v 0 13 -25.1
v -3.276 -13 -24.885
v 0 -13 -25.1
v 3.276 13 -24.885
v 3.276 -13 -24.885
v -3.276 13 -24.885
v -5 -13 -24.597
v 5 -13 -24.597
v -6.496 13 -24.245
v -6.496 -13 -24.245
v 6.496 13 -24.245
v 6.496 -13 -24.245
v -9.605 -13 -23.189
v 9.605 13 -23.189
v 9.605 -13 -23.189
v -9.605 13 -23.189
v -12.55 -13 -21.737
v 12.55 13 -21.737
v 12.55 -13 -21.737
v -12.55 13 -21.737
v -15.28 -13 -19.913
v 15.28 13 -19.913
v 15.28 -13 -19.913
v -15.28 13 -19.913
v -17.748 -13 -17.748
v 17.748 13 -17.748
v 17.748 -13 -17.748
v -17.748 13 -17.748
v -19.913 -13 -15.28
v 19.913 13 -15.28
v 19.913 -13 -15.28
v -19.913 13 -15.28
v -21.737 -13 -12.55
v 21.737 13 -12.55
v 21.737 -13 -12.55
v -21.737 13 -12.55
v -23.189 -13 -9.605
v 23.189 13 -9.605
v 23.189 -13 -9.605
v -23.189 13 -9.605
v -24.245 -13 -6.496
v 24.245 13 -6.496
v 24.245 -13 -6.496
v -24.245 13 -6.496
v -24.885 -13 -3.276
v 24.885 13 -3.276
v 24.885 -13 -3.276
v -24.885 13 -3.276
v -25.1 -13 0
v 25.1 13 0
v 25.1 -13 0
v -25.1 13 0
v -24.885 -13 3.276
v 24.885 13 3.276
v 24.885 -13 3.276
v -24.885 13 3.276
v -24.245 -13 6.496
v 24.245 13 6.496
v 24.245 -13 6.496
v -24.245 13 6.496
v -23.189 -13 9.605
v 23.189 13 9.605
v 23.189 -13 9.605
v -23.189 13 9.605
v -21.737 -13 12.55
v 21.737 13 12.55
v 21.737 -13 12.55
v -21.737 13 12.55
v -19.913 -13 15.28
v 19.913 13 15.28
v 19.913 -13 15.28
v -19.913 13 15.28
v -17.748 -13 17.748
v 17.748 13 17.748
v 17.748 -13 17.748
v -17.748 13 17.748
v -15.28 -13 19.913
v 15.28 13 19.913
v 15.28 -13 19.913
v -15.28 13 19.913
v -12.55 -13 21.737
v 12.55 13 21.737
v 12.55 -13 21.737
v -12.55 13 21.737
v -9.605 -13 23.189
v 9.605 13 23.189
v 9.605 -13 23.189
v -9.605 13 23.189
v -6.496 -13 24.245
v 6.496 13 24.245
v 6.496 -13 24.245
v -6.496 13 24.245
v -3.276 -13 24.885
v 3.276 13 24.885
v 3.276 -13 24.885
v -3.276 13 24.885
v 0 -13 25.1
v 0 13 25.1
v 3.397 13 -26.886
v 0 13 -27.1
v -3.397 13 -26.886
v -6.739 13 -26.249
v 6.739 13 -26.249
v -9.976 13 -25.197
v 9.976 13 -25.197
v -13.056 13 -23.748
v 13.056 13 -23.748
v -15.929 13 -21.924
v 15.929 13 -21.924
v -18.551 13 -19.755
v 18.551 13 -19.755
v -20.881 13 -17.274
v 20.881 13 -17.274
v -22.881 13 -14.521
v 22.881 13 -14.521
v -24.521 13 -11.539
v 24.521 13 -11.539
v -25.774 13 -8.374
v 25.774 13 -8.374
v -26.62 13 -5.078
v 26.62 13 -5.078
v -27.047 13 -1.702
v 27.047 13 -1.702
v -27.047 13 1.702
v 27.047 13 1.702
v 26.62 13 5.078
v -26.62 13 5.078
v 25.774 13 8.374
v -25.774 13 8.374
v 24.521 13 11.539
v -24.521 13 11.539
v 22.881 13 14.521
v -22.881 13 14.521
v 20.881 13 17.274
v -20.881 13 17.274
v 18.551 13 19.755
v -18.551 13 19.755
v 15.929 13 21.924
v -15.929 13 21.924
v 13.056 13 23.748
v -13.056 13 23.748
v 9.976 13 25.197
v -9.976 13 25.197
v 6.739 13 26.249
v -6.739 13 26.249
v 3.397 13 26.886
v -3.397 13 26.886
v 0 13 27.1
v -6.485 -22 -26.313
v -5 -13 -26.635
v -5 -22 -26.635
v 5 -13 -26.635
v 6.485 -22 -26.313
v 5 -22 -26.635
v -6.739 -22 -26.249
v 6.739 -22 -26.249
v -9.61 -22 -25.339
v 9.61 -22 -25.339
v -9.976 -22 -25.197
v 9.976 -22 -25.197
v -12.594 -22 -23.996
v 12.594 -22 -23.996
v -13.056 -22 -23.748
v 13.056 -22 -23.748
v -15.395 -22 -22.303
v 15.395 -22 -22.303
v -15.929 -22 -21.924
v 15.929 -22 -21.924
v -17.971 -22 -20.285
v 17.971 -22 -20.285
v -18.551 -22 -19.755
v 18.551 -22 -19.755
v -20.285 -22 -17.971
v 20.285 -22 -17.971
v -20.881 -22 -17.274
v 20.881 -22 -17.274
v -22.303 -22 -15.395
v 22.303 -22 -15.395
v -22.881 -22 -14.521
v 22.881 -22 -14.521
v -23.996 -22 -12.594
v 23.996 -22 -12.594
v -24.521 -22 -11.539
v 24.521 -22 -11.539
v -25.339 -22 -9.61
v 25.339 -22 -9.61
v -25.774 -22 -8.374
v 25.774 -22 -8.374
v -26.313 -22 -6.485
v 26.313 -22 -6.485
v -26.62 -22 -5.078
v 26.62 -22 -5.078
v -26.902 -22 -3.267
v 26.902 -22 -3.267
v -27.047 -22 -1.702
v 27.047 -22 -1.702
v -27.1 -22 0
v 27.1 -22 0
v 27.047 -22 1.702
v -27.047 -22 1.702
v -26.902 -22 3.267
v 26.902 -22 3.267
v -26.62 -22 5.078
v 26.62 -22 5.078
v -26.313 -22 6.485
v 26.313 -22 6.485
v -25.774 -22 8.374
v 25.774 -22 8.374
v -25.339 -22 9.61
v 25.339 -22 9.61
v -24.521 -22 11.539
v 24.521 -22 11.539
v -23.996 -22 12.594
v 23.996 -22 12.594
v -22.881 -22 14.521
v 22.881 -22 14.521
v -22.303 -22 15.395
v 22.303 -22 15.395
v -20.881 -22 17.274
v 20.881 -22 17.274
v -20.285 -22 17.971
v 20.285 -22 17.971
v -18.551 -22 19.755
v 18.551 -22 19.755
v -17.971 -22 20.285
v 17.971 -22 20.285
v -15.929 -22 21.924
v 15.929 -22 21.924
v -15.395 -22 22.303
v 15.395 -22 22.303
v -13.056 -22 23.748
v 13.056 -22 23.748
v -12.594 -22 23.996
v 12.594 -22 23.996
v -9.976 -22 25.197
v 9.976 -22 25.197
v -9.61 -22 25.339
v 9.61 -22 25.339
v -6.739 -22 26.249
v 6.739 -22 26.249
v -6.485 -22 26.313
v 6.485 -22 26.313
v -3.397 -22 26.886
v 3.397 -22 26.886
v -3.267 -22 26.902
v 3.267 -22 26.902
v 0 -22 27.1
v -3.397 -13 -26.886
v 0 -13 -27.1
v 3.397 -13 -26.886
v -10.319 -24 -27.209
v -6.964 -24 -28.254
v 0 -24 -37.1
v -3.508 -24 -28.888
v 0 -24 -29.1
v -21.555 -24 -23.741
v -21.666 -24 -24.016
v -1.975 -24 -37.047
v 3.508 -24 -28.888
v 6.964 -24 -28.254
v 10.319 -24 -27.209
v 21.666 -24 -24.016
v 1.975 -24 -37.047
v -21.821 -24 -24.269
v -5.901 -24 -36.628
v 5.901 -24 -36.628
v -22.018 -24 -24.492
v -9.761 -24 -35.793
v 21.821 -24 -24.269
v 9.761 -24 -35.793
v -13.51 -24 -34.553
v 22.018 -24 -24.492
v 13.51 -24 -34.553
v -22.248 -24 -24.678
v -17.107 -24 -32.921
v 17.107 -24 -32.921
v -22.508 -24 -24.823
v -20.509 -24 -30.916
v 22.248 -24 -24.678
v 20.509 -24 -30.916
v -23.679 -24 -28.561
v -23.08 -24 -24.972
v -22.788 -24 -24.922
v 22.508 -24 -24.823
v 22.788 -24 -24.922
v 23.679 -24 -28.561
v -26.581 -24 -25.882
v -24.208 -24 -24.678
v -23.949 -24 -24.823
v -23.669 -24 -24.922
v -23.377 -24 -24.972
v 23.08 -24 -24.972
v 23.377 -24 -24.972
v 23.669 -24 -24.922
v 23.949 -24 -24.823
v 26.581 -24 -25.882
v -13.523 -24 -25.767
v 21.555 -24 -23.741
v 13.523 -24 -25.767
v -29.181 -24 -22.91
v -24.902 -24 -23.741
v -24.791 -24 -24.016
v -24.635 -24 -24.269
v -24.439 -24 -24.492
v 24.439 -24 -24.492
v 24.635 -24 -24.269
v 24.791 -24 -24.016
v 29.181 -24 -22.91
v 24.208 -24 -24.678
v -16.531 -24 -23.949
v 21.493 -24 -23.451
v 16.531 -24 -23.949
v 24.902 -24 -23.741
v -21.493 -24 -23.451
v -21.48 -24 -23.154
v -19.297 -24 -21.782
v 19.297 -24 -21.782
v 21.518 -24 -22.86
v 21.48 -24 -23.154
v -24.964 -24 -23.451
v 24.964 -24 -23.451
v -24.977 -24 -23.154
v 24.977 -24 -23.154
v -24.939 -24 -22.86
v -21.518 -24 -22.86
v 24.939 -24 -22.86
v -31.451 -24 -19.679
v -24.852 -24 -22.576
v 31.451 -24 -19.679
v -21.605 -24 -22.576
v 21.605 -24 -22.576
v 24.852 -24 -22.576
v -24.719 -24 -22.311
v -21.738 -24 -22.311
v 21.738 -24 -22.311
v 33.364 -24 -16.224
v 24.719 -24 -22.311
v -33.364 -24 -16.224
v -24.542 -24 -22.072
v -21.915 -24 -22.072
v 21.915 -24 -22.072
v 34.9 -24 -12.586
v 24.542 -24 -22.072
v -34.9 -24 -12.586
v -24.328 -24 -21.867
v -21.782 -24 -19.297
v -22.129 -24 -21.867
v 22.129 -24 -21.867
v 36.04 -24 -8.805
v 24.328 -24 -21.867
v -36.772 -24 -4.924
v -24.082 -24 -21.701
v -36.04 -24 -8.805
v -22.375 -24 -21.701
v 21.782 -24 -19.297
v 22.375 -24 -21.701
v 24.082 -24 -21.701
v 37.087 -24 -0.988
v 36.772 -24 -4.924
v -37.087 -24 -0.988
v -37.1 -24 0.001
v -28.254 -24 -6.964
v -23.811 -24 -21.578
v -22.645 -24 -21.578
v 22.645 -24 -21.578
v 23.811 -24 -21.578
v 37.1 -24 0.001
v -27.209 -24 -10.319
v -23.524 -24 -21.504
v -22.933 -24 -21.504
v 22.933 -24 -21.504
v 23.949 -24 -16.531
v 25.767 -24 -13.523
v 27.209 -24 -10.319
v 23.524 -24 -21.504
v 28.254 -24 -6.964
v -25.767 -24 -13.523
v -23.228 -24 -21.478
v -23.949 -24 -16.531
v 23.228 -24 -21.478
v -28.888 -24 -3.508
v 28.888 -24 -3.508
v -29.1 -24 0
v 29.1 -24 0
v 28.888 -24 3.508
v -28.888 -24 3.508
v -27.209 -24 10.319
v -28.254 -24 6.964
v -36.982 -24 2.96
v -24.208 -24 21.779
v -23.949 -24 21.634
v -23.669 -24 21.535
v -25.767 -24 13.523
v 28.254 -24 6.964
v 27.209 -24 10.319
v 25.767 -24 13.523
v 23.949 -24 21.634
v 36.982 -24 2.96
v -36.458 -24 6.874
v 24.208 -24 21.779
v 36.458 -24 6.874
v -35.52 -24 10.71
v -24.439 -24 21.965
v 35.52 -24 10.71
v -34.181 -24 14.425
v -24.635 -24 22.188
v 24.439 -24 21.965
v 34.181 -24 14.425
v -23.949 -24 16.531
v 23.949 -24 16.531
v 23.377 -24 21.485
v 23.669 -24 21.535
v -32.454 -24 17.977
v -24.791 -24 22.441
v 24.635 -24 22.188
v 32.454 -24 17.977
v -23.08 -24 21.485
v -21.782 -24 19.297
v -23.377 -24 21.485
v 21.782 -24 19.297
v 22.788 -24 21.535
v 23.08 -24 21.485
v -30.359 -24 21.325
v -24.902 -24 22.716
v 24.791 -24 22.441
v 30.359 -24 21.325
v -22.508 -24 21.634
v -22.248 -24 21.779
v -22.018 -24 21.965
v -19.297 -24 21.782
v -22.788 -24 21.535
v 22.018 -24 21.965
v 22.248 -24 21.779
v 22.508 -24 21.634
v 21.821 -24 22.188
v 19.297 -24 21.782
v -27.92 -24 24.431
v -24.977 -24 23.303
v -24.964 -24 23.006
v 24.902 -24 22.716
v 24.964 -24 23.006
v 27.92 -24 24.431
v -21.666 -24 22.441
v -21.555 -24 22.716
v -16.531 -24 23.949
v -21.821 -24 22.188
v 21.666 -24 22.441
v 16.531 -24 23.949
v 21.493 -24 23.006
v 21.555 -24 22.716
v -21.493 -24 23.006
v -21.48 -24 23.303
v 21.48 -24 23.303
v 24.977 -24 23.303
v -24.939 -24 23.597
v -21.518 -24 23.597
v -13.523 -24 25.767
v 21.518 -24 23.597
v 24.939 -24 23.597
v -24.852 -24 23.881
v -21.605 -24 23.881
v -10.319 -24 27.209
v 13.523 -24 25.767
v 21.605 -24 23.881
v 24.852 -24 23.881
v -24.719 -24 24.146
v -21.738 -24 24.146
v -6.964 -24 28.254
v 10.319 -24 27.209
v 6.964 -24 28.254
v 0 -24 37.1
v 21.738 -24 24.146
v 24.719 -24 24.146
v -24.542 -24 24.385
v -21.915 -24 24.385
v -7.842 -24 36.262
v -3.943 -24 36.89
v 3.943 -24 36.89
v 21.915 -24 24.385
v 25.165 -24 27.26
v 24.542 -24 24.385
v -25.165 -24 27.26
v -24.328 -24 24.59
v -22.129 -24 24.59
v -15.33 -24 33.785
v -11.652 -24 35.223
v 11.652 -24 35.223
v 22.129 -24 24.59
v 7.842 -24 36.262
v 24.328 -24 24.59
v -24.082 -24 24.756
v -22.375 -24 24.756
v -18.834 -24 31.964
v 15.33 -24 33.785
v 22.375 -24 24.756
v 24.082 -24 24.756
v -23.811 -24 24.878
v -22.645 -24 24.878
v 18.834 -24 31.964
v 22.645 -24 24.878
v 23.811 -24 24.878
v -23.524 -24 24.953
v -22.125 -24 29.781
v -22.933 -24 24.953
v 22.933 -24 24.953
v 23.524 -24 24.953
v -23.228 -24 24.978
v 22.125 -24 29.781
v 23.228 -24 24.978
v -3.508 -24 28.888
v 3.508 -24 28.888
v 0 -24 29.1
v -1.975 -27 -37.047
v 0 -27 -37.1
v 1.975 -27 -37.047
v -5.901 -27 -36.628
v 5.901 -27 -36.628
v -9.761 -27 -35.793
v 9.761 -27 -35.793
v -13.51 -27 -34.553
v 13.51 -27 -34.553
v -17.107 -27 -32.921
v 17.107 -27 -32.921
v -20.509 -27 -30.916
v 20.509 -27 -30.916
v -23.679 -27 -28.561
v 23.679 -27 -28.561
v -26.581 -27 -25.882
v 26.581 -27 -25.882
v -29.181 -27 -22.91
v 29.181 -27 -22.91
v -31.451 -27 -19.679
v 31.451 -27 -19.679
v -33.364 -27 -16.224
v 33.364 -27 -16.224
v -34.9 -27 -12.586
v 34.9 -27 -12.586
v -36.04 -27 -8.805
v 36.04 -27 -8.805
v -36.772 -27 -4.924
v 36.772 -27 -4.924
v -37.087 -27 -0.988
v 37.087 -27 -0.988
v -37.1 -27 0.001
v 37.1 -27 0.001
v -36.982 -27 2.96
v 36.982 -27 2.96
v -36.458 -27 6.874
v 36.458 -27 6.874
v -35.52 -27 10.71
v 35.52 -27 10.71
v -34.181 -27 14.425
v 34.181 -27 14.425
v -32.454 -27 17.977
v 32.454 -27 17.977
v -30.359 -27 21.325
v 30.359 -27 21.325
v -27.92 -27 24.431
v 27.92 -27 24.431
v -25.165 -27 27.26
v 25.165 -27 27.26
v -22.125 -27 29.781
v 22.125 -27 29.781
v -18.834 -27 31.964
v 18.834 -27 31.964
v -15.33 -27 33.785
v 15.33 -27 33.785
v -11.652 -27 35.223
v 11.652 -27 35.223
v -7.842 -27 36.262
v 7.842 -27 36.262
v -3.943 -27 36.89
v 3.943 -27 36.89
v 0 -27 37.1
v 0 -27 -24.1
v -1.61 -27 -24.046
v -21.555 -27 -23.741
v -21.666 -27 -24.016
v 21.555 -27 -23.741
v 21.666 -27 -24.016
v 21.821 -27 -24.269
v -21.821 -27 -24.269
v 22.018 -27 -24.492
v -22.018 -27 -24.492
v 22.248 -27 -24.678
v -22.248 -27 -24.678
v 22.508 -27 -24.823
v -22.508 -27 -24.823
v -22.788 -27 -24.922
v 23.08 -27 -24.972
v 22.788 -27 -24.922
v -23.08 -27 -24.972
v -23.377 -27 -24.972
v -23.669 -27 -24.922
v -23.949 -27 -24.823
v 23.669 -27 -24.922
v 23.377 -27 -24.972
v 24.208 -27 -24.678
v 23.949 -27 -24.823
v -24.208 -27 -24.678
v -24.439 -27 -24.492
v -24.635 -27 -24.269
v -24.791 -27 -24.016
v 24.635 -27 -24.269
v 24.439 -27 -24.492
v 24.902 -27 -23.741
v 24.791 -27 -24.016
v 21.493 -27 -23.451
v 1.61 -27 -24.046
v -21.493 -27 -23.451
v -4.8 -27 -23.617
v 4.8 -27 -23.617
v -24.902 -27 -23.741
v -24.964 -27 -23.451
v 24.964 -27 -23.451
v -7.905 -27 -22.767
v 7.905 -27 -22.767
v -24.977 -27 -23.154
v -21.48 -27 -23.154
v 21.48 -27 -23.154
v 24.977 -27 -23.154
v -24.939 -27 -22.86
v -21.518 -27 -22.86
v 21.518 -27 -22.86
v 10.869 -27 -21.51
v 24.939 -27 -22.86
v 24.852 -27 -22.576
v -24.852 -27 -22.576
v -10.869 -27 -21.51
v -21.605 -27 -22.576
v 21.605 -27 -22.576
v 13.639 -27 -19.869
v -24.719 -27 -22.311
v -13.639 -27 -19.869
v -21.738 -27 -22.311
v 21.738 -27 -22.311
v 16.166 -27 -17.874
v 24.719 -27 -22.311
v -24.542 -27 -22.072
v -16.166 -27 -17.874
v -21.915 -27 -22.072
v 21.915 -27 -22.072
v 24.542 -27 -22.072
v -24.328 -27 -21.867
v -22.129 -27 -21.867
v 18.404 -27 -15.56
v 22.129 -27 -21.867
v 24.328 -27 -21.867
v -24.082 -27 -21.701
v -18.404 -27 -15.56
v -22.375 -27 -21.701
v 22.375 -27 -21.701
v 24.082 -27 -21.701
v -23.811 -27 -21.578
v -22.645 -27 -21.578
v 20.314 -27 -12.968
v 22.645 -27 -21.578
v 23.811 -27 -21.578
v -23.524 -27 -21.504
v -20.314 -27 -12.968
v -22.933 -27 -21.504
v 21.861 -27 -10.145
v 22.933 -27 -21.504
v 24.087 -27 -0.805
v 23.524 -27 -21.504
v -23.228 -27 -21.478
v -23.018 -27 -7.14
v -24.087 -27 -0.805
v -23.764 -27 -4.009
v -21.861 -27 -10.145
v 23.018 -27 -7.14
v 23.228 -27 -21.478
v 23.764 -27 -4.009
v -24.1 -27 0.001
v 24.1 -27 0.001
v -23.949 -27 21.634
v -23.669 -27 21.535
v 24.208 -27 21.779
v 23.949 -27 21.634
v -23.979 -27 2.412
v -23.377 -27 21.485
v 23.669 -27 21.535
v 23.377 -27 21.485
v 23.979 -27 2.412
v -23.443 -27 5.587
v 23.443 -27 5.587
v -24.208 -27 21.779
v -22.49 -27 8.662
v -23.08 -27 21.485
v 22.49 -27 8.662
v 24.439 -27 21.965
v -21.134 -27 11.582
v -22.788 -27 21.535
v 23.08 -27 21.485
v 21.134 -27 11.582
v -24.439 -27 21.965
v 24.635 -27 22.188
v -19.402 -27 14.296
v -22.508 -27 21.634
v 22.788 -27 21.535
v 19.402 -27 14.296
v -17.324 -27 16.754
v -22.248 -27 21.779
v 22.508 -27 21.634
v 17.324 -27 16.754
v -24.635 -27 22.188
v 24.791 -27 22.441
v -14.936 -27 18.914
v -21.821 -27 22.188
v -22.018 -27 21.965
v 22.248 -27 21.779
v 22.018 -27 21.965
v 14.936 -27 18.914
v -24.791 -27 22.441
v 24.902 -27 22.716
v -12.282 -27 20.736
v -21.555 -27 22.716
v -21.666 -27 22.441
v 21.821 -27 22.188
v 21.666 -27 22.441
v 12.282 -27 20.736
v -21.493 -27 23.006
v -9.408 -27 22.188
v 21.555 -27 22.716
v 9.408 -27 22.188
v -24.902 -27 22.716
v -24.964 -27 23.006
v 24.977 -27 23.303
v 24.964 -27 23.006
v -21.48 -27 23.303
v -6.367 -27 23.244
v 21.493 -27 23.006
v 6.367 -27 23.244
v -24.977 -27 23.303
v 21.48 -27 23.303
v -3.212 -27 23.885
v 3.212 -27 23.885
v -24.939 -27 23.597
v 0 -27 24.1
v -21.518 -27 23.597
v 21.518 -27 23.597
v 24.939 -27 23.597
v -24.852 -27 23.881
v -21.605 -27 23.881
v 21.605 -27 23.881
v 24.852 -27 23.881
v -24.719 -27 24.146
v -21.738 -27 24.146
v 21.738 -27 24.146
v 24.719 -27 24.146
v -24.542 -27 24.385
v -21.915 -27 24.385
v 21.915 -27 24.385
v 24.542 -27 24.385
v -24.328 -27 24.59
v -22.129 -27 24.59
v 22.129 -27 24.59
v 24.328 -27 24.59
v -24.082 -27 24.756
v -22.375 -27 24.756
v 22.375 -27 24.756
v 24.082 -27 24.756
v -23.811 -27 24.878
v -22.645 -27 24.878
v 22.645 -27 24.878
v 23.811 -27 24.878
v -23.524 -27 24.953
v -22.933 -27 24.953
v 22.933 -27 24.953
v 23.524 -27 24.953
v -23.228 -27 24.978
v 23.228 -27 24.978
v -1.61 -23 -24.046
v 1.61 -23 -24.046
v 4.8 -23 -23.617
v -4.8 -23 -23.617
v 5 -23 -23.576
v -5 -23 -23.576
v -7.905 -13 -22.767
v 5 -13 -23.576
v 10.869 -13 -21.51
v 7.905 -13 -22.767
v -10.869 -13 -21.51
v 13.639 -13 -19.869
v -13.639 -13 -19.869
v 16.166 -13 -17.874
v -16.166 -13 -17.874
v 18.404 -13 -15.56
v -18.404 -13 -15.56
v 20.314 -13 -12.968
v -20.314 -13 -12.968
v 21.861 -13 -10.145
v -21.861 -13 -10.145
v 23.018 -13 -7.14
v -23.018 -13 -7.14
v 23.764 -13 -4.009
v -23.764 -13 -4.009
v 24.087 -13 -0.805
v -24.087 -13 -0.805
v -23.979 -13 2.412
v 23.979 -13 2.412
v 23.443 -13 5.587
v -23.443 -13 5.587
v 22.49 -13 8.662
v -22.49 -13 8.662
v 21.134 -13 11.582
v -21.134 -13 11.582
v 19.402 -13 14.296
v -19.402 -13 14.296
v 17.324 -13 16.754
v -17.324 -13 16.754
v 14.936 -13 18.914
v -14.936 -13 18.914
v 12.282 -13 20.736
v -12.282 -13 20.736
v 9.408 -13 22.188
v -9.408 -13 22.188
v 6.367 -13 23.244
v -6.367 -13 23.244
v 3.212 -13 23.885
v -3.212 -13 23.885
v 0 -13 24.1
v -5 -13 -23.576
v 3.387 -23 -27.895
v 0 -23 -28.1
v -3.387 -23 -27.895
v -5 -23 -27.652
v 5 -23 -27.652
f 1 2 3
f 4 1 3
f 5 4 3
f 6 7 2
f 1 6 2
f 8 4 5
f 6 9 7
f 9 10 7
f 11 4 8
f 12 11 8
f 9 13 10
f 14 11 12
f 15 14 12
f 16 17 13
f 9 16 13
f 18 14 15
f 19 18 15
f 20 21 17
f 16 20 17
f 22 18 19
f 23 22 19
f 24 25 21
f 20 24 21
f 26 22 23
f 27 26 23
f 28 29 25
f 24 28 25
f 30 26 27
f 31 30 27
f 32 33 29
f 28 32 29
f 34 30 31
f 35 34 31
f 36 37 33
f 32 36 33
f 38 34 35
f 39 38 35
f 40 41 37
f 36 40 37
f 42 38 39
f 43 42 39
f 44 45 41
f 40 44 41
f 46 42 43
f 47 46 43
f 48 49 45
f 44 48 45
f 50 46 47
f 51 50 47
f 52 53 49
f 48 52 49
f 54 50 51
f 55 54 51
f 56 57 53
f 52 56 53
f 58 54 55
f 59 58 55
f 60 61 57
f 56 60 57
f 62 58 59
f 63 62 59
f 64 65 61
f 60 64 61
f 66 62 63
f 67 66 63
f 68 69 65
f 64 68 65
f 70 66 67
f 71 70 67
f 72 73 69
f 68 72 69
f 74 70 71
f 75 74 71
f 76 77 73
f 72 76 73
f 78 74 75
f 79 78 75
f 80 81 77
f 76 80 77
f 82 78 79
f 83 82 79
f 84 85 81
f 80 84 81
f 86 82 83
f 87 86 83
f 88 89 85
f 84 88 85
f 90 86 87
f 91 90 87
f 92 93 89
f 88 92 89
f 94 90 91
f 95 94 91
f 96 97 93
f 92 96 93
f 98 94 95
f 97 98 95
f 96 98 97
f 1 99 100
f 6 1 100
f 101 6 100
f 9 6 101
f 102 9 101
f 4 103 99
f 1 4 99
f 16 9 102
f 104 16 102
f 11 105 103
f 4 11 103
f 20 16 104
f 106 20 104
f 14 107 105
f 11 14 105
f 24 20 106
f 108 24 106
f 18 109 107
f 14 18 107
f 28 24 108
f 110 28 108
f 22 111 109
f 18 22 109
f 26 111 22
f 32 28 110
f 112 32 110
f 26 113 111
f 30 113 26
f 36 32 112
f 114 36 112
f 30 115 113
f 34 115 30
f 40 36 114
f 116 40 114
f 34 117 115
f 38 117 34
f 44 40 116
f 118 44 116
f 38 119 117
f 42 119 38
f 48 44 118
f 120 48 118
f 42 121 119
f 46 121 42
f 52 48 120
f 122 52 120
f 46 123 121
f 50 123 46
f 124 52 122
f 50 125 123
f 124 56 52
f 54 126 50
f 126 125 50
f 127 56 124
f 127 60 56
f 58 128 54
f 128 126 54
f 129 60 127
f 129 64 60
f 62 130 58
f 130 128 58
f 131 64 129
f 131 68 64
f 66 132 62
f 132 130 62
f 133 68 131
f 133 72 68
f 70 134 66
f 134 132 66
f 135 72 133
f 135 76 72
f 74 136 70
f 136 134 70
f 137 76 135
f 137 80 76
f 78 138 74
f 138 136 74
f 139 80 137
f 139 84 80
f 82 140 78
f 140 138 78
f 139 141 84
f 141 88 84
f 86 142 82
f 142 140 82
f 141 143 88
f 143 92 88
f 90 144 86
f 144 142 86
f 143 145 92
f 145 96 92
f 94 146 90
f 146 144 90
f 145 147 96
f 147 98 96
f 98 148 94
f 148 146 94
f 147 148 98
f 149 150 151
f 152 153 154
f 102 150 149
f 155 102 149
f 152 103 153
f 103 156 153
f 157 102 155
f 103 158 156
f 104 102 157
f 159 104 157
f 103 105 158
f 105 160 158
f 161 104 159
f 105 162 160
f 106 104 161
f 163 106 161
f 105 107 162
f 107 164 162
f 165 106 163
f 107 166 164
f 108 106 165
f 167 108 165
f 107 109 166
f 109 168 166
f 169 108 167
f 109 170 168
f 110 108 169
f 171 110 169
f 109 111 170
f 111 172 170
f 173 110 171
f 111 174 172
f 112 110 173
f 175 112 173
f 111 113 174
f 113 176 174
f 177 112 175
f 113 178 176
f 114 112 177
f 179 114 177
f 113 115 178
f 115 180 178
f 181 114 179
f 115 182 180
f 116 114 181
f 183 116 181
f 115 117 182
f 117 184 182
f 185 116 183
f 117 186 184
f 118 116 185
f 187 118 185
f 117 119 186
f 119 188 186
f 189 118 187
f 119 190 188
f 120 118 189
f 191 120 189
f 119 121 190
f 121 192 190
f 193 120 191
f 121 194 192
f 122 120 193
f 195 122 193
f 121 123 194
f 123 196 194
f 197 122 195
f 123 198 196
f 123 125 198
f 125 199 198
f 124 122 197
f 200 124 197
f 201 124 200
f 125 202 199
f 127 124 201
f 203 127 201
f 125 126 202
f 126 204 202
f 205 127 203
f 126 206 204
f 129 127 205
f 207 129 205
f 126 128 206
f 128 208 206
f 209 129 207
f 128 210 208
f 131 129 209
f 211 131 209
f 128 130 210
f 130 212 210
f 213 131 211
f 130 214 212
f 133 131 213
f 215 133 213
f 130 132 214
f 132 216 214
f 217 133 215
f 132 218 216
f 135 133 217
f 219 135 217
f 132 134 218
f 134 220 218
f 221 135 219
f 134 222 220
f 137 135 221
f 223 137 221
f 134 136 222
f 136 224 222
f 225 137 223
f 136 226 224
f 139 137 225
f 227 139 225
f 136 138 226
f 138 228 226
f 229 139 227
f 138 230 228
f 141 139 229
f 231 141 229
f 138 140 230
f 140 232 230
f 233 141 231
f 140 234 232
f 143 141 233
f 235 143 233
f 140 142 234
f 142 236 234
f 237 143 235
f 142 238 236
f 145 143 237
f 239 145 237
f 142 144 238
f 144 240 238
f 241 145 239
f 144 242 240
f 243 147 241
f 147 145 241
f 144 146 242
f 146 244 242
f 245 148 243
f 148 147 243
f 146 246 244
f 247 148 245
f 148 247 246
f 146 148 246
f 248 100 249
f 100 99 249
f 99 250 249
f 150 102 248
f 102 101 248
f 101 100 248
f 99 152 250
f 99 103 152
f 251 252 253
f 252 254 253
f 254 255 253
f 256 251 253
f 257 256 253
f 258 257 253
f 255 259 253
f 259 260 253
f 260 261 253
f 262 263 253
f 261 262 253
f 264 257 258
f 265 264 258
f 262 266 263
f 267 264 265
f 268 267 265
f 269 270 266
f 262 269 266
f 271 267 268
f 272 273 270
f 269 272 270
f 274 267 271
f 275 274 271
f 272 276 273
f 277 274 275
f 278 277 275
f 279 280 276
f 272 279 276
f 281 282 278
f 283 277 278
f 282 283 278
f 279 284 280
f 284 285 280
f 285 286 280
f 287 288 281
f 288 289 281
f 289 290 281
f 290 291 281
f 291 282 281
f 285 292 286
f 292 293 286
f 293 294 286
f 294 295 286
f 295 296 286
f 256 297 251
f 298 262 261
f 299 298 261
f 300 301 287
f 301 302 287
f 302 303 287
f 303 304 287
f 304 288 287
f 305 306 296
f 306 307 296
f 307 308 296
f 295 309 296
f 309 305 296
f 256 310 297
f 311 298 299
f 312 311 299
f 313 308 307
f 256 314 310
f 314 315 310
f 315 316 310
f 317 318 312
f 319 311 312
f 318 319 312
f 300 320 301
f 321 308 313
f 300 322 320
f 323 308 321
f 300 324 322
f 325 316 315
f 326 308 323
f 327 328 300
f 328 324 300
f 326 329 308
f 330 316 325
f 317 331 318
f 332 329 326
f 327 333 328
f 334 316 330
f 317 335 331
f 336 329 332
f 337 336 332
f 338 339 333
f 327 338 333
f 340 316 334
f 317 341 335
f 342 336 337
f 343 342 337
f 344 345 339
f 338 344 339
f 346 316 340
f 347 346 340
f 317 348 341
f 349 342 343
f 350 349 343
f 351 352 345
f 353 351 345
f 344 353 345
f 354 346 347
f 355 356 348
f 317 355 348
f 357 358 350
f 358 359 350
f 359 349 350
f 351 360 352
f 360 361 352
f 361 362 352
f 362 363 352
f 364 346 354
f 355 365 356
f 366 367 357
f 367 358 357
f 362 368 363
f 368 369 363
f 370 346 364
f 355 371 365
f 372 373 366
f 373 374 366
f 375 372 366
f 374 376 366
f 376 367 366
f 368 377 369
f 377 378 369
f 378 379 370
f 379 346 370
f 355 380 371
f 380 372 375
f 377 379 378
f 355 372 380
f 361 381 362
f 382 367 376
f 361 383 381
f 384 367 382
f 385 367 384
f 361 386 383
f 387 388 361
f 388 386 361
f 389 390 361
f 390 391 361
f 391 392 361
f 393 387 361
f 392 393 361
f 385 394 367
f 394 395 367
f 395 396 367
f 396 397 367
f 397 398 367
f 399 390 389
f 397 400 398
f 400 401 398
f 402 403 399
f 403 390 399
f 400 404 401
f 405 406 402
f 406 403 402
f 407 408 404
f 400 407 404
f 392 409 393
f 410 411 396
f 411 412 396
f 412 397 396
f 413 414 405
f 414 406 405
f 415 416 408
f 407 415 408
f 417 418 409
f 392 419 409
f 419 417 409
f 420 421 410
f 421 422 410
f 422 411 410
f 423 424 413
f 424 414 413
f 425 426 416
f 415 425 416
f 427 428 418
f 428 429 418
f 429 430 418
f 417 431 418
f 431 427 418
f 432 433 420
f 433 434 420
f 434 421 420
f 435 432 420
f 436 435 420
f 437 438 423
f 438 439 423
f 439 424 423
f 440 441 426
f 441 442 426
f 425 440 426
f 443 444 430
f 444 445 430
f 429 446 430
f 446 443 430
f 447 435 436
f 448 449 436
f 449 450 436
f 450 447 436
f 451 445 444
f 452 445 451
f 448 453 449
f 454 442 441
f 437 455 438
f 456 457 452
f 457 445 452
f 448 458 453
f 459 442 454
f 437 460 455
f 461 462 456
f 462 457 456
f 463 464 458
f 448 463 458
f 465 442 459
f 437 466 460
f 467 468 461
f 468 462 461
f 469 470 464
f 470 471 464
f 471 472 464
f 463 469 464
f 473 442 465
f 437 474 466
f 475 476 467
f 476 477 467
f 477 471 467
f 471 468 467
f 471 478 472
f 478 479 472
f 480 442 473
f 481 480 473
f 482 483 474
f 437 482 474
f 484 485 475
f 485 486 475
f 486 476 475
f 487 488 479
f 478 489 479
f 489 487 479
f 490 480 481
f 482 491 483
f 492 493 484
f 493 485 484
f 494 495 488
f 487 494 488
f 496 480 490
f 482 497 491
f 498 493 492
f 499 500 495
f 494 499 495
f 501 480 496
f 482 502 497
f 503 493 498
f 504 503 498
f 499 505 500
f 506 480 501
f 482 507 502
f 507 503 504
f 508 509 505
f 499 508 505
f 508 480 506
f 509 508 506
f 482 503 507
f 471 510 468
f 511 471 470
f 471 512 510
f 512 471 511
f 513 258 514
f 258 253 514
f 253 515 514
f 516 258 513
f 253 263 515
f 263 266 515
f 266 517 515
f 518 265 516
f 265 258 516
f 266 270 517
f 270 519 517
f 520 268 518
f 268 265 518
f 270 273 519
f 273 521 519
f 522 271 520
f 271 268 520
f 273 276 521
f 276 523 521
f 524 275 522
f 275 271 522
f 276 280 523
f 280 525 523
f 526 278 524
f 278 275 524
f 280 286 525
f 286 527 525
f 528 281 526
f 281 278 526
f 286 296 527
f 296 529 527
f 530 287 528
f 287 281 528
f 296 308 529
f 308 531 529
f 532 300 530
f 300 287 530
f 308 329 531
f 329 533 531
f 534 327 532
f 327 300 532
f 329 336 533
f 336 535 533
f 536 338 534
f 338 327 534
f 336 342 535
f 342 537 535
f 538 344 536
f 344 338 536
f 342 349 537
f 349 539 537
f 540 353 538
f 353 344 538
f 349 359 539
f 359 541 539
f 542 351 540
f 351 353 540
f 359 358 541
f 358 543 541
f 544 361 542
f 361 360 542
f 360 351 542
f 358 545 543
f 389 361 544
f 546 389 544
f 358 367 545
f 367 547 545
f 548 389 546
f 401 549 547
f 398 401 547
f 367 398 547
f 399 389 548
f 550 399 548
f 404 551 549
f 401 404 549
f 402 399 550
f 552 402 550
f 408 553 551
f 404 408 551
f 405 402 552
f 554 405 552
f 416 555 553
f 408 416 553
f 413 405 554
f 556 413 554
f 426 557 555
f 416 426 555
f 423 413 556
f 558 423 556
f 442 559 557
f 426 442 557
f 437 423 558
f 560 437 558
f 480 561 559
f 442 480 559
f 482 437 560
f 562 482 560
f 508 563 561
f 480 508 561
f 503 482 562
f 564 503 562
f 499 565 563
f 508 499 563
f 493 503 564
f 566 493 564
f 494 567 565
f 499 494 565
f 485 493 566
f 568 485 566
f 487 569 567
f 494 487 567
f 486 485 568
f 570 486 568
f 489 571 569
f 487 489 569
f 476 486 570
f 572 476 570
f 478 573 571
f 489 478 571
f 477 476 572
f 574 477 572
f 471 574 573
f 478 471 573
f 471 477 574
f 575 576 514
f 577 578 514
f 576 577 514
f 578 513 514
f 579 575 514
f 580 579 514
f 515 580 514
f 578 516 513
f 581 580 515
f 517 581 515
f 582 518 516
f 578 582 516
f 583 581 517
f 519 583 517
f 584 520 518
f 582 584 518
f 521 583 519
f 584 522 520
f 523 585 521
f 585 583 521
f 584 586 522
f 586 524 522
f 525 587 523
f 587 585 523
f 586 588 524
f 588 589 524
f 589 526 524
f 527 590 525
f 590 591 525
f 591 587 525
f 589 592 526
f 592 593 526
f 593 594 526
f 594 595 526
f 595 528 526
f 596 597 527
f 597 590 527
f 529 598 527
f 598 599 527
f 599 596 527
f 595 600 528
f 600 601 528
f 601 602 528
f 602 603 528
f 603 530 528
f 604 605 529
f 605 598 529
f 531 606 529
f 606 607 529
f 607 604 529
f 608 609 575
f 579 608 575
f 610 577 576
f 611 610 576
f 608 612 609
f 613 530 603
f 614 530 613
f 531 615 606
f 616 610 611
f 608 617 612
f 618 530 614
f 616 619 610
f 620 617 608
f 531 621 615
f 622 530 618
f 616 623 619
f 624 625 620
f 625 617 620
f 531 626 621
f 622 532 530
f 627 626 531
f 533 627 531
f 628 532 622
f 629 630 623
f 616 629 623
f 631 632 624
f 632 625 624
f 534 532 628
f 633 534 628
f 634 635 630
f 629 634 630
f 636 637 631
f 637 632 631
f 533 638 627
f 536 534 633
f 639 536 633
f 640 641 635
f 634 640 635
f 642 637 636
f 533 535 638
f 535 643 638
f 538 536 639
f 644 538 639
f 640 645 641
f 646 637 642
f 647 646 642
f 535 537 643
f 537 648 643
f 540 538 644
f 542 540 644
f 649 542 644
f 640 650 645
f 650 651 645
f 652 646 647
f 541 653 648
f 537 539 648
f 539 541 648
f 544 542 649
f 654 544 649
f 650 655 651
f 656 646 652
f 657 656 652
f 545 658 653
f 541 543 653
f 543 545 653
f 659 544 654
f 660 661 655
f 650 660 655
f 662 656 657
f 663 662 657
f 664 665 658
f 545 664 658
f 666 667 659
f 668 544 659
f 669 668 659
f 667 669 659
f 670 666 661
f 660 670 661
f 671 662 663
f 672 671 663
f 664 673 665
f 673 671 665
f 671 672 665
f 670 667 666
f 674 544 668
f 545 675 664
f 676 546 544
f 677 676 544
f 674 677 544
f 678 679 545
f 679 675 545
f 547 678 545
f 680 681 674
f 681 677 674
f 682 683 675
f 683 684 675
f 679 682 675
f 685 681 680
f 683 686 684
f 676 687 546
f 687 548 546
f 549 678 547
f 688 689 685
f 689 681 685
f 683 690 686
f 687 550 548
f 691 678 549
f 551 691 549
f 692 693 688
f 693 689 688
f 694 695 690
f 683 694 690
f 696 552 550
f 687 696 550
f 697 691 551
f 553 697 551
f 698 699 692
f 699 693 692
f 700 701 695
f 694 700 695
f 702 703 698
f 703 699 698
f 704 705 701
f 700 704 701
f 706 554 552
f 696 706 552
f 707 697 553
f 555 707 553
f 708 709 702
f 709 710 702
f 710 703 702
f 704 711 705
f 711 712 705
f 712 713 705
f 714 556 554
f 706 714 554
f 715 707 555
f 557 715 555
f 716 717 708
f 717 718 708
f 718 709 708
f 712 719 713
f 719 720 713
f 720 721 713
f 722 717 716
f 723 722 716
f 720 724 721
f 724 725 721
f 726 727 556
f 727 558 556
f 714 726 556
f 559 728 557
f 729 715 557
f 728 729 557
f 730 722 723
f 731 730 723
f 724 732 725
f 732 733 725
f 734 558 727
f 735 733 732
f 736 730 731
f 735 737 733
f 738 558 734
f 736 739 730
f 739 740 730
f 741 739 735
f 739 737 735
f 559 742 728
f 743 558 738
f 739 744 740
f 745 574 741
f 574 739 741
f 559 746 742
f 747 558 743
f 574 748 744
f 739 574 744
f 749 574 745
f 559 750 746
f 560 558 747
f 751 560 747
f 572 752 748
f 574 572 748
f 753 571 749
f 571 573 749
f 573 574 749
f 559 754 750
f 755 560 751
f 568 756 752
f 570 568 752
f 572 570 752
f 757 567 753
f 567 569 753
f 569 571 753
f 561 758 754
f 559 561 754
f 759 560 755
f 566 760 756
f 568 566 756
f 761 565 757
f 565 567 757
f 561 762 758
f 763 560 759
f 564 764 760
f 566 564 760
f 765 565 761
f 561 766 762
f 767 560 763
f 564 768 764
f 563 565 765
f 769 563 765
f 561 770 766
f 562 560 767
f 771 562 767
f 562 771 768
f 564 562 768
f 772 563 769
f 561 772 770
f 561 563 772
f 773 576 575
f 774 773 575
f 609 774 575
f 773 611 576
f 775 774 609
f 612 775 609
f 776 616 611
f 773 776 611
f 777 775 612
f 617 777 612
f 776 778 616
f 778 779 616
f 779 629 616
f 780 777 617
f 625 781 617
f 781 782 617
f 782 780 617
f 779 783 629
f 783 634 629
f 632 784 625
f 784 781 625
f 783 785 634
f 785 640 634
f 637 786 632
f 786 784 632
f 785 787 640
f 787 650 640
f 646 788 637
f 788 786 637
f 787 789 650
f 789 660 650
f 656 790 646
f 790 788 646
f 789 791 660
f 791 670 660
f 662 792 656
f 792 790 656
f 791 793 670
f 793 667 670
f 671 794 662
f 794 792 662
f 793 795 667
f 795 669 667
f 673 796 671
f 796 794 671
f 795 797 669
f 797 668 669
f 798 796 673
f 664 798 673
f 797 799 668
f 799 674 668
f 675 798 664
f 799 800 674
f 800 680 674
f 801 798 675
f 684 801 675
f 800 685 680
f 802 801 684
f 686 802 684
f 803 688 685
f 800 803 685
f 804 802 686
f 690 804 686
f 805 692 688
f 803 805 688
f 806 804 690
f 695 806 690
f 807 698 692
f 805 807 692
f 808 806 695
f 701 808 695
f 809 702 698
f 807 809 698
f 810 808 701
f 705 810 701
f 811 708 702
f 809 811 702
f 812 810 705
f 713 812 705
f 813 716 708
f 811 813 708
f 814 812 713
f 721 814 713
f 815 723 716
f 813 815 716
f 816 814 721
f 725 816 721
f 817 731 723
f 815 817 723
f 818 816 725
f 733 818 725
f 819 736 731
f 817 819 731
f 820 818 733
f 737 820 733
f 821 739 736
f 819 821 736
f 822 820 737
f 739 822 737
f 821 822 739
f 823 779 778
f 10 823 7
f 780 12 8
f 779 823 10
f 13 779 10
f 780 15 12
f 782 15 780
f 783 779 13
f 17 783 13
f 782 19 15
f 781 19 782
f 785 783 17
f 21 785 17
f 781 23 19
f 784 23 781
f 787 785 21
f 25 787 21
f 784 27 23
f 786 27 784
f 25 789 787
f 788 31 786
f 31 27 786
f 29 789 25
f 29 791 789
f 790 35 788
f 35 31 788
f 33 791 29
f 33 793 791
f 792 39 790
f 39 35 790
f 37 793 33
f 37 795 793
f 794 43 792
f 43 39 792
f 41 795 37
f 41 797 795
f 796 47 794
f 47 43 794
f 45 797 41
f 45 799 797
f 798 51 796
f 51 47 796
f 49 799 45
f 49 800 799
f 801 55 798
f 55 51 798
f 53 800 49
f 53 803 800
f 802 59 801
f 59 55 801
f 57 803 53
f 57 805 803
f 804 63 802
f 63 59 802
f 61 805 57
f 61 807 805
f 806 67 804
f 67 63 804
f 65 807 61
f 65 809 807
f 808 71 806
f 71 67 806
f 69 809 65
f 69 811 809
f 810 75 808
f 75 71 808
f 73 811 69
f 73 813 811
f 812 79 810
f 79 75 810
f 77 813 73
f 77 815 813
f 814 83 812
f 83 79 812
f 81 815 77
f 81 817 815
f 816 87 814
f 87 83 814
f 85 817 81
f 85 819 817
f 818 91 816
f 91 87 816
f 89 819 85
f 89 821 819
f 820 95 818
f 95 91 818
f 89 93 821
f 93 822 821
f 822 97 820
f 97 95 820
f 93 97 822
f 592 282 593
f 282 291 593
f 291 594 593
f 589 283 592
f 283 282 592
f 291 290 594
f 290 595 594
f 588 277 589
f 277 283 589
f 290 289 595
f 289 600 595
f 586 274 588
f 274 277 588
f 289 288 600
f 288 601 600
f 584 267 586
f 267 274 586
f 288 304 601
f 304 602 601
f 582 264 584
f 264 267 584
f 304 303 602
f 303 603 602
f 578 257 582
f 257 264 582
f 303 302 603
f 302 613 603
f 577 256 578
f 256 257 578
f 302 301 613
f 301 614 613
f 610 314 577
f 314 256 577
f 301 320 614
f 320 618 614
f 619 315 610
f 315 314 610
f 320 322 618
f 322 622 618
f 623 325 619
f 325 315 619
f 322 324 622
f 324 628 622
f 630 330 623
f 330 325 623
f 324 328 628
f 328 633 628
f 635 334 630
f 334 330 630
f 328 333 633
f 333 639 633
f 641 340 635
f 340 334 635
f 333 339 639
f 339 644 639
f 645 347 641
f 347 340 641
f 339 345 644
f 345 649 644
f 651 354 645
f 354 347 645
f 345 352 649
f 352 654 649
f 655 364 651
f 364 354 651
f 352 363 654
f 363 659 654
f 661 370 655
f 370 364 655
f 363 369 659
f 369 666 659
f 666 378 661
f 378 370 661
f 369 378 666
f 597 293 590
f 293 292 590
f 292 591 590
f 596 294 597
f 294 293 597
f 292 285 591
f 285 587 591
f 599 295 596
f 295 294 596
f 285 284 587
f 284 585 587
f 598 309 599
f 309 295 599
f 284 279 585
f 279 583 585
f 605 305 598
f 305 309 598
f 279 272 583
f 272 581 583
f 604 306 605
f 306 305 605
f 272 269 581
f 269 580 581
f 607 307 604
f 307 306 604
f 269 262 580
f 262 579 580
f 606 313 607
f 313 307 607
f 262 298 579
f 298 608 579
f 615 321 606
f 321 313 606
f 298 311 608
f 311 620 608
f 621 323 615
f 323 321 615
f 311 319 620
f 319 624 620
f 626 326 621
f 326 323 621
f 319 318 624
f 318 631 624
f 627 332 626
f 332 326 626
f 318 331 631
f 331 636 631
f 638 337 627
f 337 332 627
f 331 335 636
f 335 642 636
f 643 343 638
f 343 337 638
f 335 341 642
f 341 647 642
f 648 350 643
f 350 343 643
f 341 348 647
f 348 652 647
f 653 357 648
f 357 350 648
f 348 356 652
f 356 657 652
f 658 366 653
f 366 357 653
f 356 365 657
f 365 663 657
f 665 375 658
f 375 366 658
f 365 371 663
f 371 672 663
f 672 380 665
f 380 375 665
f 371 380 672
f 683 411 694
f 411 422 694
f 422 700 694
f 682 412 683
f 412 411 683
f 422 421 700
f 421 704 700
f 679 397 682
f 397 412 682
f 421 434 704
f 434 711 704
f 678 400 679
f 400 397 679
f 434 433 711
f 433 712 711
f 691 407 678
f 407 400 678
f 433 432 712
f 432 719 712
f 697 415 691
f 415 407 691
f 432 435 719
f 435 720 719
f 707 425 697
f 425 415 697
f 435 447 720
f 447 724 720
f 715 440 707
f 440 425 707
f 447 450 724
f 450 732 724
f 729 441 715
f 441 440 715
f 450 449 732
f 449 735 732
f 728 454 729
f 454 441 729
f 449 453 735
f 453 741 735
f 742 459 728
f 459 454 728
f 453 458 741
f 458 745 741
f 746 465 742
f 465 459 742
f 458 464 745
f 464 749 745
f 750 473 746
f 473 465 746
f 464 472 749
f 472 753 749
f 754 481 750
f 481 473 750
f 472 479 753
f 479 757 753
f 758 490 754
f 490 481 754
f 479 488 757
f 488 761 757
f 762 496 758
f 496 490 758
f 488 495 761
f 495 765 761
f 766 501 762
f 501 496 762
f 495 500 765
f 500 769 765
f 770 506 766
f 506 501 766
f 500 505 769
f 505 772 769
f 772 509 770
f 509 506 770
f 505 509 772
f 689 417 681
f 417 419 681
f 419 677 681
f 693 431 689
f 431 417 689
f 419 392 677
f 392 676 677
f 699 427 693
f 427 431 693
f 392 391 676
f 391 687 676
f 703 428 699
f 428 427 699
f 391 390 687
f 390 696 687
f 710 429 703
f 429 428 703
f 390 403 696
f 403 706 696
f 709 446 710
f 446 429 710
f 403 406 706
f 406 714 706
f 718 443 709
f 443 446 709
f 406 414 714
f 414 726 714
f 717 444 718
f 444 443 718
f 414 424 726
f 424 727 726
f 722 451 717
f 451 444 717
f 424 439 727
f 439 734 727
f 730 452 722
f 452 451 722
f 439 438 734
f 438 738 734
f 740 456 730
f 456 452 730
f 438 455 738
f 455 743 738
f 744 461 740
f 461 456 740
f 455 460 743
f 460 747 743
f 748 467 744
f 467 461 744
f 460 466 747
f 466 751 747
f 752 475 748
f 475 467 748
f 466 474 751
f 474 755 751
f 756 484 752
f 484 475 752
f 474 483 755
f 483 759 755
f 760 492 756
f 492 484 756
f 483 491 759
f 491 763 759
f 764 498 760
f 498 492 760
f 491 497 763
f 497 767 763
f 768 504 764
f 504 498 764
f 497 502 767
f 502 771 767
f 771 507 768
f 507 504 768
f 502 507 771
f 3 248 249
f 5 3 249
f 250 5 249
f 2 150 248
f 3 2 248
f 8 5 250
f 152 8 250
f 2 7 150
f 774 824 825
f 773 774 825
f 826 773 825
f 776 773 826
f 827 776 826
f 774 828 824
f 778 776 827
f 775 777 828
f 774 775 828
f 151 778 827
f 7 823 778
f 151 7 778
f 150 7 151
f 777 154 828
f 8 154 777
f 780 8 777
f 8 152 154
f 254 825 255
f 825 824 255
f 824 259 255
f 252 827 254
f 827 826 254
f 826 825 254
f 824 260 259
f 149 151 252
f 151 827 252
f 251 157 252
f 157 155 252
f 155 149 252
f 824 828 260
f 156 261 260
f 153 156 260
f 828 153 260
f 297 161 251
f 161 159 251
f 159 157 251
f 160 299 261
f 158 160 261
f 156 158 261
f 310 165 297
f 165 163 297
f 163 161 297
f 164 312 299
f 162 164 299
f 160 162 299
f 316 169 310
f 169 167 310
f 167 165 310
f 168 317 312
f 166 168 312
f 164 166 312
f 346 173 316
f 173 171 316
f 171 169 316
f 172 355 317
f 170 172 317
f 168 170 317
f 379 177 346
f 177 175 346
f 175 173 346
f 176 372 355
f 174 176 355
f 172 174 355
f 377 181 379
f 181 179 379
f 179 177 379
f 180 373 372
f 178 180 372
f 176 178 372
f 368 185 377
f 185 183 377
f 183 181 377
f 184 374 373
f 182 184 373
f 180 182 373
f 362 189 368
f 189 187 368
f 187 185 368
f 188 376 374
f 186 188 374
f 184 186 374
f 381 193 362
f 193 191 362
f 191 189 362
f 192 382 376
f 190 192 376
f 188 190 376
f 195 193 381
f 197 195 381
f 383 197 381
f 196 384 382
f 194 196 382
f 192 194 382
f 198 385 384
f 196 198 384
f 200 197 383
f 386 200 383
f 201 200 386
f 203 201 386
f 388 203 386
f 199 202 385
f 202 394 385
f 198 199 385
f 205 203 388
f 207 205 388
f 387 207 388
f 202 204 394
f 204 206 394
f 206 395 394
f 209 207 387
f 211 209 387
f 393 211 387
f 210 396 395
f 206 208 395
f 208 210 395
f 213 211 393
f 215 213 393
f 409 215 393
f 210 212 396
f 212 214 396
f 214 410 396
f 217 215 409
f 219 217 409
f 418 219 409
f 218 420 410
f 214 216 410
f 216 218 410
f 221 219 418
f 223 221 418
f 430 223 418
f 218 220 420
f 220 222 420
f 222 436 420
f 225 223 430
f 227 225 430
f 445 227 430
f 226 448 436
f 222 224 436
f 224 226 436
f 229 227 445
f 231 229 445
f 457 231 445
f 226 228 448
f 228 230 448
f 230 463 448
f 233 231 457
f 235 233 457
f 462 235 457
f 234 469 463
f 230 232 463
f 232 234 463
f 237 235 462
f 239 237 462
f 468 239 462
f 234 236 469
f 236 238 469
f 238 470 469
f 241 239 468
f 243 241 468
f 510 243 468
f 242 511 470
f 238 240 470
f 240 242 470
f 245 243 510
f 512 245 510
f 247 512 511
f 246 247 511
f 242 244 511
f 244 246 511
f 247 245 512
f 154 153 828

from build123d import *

# Parameters (mm, degrees)
SKETCH3_R          = 1.75
CUT_EXTRUDE1_DEPTH = 10
SKETCH5_W          = 10
SKETCH5_H          = 10
CUT_EXTRUDE3_DEPTH = 50
CHAMFER1_START     = -23
CHAMFER1_2_DEPTH   = 2


with BuildPart() as part:
    # Sketch2 → Revolve1 (revolve)
    with BuildSketch(Plane.XY, mode=Mode.PRIVATE) as revolve1_sk:
        Polygon((25.1, 13), (27.1, 13), (27.1, -24), (37.1, -24), (37.1, -27), (24.1, -27), (24.1, -13), (25.1, -13), align=None)
    revolve(revolve1_sk.sketch.rotate(Axis((0, 0, 0), (0, -1, 0)), 90), axis=Axis((0, 0, 0), (0, -1, 0)))

    # Sketch3 → Cut-Extrude1 (cut)
    with BuildSketch(Plane(origin=(0, -24, 0), x_dir=(1, 0, 0), z_dir=(0, 1, 0))):
        with Locations(Location((-23.228457762, 23.228457762, 0), (0, 0, 270))):
            Circle(SKETCH3_R)
        with Locations(Location((23.228457762, 23.228457762, 0), (0, 0, 270))):
            Circle(SKETCH3_R)
        with Locations(Location((23.228457762, -23.228457762, 0), (0, 0, 270))):
            Circle(SKETCH3_R)
        with Locations(Location((-23.228457762, -23.228457762, 0), (0, 0, 270))):
            Circle(SKETCH3_R)
    extrude(amount=-CUT_EXTRUDE1_DEPTH, mode=Mode.SUBTRACT)

    # Sketch5 → Cut-Extrude3 (cut)
    with BuildSketch(Plane.XY):
        with Locations((0, -18)):
            Rectangle(SKETCH5_W, SKETCH5_H)
    extrude(amount=-CUT_EXTRUDE3_DEPTH, mode=Mode.SUBTRACT)

    # Chamfer1: read off the stored shape, not the designer's step
    # Chamfer1 outline → Chamfer1 (revolve)
    with BuildSketch(Plane.XY):
        Polygon((29.1, -24), (27.1, -22), (27.1, -24), align=None)
    revolve(axis=Axis((0, 0, 0), (0, 1, 0)))

    # Chamfer1 2 outline → Chamfer1 2 (cut)
    with BuildSketch(Plane(origin=(0, 0, 0), x_dir=(1, 0, 0), z_dir=(0, 1, 0)).offset(CHAMFER1_START)):
        with BuildLine():
            ThreePointArc((5, 27.651582233), (0, 28.1), (-5, 27.651582233))
            Line((-5, 27.651582233), (-5, 23.575623003))
            ThreePointArc((-5, 23.575623003), (0, 24.1), (5, 23.575623003))
            Line((5, 23.575623003), (5, 27.651582233))
        make_face()
    extrude(amount=CHAMFER1_2_DEPTH, mode=Mode.SUBTRACT)


solid = part.part
